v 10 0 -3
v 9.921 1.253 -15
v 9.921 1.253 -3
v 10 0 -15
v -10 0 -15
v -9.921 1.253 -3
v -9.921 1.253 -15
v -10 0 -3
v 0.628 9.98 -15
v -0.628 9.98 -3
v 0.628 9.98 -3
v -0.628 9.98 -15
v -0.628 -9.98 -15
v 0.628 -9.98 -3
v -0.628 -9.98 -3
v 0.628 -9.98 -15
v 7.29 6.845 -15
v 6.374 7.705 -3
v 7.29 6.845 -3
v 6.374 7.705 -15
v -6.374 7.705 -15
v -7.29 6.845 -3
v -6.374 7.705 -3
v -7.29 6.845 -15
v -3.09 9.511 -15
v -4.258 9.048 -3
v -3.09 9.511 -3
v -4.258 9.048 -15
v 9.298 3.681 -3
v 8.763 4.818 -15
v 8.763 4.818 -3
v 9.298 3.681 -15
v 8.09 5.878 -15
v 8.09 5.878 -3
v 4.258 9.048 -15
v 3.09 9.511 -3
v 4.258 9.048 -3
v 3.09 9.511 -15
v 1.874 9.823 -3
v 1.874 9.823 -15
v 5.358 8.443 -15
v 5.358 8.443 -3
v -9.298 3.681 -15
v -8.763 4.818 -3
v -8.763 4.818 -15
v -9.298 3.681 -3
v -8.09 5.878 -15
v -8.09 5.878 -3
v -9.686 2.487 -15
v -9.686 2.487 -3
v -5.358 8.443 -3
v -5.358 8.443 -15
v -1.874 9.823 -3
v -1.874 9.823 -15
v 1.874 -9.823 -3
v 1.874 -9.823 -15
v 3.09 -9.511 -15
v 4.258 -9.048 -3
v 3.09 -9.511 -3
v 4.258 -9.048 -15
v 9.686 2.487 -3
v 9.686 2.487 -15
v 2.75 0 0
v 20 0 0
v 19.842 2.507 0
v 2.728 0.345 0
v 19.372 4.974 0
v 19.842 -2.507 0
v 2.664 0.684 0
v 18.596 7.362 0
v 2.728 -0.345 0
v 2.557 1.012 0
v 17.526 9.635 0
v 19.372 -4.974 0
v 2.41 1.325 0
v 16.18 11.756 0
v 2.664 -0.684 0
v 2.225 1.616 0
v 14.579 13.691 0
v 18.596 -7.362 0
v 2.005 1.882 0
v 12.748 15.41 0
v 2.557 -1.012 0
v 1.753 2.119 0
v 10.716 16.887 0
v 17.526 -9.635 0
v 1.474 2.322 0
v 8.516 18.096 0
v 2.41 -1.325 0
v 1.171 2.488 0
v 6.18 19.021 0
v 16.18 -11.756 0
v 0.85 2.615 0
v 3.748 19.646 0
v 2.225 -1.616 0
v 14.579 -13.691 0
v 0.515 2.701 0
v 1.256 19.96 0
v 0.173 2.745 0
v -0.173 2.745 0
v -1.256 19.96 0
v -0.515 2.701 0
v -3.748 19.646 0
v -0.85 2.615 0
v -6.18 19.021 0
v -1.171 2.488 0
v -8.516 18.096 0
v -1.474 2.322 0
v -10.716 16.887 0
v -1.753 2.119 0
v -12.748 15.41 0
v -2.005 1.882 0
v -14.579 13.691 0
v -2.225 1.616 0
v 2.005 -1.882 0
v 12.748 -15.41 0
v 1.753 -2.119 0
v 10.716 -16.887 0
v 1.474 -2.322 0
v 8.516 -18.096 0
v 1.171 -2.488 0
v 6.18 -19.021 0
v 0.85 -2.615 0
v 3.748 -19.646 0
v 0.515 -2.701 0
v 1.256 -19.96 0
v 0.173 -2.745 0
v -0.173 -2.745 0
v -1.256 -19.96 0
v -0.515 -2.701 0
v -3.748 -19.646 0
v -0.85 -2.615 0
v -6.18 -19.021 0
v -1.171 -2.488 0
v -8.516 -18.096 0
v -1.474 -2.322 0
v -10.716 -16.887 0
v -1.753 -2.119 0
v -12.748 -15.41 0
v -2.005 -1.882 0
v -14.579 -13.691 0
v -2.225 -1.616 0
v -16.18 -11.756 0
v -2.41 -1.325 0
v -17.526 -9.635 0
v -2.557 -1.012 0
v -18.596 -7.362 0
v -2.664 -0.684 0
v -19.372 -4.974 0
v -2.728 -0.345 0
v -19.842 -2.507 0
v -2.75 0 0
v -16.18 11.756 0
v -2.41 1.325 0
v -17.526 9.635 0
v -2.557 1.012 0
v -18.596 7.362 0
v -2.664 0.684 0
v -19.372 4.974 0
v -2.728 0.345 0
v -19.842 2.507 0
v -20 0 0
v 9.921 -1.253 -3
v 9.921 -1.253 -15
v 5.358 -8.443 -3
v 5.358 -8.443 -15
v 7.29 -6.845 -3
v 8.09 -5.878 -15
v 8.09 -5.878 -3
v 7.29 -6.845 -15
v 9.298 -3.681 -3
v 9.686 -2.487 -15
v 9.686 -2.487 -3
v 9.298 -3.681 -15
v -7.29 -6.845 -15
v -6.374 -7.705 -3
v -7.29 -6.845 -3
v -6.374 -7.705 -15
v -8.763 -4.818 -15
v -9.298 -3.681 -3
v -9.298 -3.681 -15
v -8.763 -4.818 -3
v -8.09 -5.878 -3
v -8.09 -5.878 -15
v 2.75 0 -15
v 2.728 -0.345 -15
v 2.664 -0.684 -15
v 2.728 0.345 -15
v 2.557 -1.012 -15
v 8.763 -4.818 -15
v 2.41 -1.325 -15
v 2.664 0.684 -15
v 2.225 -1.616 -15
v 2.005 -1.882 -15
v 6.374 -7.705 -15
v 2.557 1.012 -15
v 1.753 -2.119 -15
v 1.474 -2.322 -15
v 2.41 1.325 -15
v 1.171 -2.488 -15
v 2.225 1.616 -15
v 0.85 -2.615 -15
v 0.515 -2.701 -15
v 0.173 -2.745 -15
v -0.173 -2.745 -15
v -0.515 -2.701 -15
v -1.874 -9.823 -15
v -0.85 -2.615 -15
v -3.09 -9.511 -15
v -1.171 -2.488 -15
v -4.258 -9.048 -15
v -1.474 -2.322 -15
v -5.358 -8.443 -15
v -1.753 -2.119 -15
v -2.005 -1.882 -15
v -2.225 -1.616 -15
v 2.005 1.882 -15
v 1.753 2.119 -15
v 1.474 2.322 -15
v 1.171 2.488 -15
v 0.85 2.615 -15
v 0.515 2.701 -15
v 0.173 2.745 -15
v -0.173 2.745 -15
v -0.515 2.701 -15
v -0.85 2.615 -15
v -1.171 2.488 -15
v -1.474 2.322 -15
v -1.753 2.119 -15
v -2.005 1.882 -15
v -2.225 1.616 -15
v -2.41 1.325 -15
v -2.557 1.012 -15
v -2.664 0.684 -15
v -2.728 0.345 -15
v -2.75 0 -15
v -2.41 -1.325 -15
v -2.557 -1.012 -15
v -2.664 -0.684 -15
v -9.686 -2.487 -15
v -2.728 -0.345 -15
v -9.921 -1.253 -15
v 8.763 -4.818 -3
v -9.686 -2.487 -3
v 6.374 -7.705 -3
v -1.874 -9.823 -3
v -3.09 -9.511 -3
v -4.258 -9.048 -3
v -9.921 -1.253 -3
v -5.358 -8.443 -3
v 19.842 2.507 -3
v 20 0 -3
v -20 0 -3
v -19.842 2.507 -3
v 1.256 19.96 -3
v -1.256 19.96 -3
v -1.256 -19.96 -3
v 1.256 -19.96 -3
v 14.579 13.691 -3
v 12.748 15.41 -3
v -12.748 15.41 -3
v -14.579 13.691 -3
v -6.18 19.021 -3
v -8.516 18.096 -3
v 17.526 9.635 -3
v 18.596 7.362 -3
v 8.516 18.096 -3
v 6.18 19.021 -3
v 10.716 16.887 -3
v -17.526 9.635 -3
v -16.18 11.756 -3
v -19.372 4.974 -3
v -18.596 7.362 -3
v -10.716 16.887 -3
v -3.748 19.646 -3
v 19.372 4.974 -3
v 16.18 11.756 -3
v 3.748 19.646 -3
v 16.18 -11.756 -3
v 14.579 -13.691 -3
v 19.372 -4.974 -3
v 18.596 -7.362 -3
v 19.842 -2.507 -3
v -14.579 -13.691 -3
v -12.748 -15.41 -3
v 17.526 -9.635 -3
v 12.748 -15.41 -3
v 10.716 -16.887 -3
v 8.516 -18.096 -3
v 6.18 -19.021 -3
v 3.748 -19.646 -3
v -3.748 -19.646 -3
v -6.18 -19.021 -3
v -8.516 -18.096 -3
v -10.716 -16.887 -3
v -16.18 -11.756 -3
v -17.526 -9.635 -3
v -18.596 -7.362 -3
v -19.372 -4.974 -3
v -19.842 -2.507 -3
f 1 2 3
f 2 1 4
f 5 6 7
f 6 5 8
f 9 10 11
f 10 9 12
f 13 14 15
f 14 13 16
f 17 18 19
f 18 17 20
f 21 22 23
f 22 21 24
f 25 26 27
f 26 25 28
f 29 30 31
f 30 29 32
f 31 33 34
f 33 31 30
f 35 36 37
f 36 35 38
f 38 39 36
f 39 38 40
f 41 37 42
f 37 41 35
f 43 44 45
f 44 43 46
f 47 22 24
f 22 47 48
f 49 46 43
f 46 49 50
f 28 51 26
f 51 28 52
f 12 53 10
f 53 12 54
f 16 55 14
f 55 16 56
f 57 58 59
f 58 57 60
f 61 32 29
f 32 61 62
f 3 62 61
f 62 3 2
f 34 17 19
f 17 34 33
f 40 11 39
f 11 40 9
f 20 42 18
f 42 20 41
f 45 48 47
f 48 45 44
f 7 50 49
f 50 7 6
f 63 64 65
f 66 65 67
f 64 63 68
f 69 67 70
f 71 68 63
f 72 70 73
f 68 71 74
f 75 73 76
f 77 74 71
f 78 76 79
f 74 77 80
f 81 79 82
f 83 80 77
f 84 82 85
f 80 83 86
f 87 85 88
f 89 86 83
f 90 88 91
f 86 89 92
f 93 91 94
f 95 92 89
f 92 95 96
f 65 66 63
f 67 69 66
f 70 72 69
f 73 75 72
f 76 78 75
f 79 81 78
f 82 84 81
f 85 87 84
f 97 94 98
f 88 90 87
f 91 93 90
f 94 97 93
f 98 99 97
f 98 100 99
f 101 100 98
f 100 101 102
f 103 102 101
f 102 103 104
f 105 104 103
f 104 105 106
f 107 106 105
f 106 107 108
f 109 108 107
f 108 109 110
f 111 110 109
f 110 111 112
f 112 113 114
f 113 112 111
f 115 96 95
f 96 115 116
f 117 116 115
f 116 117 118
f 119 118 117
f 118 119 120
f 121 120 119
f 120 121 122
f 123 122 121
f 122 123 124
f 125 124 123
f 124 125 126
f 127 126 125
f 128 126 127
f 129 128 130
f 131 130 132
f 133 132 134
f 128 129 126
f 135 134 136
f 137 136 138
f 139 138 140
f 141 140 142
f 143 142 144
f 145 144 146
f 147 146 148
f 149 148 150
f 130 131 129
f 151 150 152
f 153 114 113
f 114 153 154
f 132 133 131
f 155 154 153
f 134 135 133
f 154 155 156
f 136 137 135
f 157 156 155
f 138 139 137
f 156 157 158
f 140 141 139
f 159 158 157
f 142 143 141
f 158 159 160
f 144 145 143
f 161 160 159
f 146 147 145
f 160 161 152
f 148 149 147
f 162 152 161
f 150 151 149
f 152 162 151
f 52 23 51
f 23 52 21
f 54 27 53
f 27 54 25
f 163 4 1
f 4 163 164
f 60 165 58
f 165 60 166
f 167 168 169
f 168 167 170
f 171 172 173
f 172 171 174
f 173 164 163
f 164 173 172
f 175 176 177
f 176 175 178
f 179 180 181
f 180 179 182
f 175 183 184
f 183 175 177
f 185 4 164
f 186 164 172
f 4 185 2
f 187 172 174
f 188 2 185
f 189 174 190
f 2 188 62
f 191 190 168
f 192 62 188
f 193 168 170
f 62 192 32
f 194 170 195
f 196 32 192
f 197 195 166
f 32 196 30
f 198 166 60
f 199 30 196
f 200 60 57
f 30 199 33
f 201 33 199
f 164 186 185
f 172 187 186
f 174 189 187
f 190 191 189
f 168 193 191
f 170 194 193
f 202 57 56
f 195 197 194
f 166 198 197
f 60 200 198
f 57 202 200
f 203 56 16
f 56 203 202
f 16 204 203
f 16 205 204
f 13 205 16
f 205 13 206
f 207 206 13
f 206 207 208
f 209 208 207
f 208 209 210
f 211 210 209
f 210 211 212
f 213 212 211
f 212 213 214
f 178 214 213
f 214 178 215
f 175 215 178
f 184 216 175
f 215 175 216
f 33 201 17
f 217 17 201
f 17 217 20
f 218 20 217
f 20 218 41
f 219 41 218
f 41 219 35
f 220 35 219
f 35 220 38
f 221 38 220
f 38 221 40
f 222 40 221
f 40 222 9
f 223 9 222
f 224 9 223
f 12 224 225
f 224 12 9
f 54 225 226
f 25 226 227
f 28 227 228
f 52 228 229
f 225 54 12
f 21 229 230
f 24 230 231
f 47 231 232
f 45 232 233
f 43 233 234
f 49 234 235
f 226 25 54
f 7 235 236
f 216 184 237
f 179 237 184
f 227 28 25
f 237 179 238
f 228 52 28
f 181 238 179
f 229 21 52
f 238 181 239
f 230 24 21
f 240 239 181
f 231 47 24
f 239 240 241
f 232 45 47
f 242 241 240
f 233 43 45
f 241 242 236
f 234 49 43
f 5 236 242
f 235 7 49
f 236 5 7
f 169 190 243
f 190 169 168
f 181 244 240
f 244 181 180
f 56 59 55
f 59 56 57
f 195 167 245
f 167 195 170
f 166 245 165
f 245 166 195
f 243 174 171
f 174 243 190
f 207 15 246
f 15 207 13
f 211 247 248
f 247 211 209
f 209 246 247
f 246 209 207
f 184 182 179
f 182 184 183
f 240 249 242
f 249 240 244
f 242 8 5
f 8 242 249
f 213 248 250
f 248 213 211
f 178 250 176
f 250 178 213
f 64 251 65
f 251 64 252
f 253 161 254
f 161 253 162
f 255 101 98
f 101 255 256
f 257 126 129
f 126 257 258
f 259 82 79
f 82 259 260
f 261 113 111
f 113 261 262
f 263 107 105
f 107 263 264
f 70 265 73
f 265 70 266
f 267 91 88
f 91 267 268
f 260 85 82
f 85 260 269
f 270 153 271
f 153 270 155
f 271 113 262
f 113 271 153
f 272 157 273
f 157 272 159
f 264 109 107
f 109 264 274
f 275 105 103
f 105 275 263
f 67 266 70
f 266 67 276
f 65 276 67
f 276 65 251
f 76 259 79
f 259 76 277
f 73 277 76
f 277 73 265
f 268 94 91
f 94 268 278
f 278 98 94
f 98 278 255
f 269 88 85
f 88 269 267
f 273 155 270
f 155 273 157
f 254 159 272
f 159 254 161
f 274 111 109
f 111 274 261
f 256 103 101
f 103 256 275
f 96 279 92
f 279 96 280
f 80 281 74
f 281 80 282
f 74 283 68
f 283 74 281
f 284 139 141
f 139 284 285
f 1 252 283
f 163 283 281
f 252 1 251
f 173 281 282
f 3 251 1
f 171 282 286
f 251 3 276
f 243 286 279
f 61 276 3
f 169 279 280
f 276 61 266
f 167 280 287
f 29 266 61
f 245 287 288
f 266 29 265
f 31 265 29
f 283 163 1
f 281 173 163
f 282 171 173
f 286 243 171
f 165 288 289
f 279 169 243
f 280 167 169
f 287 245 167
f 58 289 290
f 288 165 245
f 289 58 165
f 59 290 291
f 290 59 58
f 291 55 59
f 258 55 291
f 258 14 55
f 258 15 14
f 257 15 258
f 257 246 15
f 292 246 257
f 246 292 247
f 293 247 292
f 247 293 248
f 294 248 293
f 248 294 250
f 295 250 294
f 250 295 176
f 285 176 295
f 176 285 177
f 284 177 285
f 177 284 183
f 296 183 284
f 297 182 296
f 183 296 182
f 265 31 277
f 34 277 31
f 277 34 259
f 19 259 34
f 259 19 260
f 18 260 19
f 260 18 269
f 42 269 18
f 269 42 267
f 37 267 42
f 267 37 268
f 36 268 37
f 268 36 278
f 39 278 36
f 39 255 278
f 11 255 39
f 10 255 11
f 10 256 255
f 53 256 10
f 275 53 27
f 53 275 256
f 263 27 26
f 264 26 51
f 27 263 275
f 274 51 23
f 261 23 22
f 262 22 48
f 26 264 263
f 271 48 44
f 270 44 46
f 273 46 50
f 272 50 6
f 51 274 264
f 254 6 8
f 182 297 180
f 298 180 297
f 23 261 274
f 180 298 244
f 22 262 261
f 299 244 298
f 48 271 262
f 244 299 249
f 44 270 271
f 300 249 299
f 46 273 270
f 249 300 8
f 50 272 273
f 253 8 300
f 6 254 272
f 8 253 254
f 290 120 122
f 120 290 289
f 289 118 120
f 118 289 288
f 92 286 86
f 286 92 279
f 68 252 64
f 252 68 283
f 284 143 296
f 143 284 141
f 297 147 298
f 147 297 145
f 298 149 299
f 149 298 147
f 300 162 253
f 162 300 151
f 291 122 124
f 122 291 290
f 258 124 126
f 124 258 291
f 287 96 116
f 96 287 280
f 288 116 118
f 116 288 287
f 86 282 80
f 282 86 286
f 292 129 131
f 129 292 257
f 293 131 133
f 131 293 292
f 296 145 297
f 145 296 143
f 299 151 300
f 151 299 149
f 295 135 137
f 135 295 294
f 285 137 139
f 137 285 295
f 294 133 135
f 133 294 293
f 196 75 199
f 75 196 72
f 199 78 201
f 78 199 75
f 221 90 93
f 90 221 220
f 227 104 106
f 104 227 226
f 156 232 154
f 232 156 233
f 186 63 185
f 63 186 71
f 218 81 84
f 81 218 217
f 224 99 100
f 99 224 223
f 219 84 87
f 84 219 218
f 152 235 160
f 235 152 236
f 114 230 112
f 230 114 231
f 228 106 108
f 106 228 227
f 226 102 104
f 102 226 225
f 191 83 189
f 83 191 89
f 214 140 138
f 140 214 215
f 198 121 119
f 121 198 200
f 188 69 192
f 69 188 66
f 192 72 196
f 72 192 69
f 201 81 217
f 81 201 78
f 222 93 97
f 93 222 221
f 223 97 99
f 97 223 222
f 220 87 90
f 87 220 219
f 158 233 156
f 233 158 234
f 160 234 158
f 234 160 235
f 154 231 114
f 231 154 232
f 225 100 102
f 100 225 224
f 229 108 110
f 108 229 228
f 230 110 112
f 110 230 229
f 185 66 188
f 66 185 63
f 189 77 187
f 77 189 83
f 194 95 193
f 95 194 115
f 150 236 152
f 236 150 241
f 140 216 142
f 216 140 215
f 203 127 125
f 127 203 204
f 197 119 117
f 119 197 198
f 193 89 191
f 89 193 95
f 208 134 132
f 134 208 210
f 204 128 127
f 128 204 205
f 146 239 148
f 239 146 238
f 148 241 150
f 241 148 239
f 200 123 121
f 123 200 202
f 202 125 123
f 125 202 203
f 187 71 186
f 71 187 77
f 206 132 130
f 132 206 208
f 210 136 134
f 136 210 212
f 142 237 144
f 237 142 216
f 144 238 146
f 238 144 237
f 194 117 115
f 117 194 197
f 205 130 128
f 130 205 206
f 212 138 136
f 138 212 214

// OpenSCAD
$fn = 50;


difference() {
	union() {
		translate(v = [0, 0, -15.0000000000]) {
			cylinder(h = 15, r = 10.0000000000);
		}
		translate(v = [0, 0, -3.0000000000]) {
			cylinder(h = 3, r = 20.0000000000);
		}
	}
	union() {
		#translate(v = [0, 0, -15]) {
			cylinder(h = 15, r = 2.7500000000);
		}
	}
}
